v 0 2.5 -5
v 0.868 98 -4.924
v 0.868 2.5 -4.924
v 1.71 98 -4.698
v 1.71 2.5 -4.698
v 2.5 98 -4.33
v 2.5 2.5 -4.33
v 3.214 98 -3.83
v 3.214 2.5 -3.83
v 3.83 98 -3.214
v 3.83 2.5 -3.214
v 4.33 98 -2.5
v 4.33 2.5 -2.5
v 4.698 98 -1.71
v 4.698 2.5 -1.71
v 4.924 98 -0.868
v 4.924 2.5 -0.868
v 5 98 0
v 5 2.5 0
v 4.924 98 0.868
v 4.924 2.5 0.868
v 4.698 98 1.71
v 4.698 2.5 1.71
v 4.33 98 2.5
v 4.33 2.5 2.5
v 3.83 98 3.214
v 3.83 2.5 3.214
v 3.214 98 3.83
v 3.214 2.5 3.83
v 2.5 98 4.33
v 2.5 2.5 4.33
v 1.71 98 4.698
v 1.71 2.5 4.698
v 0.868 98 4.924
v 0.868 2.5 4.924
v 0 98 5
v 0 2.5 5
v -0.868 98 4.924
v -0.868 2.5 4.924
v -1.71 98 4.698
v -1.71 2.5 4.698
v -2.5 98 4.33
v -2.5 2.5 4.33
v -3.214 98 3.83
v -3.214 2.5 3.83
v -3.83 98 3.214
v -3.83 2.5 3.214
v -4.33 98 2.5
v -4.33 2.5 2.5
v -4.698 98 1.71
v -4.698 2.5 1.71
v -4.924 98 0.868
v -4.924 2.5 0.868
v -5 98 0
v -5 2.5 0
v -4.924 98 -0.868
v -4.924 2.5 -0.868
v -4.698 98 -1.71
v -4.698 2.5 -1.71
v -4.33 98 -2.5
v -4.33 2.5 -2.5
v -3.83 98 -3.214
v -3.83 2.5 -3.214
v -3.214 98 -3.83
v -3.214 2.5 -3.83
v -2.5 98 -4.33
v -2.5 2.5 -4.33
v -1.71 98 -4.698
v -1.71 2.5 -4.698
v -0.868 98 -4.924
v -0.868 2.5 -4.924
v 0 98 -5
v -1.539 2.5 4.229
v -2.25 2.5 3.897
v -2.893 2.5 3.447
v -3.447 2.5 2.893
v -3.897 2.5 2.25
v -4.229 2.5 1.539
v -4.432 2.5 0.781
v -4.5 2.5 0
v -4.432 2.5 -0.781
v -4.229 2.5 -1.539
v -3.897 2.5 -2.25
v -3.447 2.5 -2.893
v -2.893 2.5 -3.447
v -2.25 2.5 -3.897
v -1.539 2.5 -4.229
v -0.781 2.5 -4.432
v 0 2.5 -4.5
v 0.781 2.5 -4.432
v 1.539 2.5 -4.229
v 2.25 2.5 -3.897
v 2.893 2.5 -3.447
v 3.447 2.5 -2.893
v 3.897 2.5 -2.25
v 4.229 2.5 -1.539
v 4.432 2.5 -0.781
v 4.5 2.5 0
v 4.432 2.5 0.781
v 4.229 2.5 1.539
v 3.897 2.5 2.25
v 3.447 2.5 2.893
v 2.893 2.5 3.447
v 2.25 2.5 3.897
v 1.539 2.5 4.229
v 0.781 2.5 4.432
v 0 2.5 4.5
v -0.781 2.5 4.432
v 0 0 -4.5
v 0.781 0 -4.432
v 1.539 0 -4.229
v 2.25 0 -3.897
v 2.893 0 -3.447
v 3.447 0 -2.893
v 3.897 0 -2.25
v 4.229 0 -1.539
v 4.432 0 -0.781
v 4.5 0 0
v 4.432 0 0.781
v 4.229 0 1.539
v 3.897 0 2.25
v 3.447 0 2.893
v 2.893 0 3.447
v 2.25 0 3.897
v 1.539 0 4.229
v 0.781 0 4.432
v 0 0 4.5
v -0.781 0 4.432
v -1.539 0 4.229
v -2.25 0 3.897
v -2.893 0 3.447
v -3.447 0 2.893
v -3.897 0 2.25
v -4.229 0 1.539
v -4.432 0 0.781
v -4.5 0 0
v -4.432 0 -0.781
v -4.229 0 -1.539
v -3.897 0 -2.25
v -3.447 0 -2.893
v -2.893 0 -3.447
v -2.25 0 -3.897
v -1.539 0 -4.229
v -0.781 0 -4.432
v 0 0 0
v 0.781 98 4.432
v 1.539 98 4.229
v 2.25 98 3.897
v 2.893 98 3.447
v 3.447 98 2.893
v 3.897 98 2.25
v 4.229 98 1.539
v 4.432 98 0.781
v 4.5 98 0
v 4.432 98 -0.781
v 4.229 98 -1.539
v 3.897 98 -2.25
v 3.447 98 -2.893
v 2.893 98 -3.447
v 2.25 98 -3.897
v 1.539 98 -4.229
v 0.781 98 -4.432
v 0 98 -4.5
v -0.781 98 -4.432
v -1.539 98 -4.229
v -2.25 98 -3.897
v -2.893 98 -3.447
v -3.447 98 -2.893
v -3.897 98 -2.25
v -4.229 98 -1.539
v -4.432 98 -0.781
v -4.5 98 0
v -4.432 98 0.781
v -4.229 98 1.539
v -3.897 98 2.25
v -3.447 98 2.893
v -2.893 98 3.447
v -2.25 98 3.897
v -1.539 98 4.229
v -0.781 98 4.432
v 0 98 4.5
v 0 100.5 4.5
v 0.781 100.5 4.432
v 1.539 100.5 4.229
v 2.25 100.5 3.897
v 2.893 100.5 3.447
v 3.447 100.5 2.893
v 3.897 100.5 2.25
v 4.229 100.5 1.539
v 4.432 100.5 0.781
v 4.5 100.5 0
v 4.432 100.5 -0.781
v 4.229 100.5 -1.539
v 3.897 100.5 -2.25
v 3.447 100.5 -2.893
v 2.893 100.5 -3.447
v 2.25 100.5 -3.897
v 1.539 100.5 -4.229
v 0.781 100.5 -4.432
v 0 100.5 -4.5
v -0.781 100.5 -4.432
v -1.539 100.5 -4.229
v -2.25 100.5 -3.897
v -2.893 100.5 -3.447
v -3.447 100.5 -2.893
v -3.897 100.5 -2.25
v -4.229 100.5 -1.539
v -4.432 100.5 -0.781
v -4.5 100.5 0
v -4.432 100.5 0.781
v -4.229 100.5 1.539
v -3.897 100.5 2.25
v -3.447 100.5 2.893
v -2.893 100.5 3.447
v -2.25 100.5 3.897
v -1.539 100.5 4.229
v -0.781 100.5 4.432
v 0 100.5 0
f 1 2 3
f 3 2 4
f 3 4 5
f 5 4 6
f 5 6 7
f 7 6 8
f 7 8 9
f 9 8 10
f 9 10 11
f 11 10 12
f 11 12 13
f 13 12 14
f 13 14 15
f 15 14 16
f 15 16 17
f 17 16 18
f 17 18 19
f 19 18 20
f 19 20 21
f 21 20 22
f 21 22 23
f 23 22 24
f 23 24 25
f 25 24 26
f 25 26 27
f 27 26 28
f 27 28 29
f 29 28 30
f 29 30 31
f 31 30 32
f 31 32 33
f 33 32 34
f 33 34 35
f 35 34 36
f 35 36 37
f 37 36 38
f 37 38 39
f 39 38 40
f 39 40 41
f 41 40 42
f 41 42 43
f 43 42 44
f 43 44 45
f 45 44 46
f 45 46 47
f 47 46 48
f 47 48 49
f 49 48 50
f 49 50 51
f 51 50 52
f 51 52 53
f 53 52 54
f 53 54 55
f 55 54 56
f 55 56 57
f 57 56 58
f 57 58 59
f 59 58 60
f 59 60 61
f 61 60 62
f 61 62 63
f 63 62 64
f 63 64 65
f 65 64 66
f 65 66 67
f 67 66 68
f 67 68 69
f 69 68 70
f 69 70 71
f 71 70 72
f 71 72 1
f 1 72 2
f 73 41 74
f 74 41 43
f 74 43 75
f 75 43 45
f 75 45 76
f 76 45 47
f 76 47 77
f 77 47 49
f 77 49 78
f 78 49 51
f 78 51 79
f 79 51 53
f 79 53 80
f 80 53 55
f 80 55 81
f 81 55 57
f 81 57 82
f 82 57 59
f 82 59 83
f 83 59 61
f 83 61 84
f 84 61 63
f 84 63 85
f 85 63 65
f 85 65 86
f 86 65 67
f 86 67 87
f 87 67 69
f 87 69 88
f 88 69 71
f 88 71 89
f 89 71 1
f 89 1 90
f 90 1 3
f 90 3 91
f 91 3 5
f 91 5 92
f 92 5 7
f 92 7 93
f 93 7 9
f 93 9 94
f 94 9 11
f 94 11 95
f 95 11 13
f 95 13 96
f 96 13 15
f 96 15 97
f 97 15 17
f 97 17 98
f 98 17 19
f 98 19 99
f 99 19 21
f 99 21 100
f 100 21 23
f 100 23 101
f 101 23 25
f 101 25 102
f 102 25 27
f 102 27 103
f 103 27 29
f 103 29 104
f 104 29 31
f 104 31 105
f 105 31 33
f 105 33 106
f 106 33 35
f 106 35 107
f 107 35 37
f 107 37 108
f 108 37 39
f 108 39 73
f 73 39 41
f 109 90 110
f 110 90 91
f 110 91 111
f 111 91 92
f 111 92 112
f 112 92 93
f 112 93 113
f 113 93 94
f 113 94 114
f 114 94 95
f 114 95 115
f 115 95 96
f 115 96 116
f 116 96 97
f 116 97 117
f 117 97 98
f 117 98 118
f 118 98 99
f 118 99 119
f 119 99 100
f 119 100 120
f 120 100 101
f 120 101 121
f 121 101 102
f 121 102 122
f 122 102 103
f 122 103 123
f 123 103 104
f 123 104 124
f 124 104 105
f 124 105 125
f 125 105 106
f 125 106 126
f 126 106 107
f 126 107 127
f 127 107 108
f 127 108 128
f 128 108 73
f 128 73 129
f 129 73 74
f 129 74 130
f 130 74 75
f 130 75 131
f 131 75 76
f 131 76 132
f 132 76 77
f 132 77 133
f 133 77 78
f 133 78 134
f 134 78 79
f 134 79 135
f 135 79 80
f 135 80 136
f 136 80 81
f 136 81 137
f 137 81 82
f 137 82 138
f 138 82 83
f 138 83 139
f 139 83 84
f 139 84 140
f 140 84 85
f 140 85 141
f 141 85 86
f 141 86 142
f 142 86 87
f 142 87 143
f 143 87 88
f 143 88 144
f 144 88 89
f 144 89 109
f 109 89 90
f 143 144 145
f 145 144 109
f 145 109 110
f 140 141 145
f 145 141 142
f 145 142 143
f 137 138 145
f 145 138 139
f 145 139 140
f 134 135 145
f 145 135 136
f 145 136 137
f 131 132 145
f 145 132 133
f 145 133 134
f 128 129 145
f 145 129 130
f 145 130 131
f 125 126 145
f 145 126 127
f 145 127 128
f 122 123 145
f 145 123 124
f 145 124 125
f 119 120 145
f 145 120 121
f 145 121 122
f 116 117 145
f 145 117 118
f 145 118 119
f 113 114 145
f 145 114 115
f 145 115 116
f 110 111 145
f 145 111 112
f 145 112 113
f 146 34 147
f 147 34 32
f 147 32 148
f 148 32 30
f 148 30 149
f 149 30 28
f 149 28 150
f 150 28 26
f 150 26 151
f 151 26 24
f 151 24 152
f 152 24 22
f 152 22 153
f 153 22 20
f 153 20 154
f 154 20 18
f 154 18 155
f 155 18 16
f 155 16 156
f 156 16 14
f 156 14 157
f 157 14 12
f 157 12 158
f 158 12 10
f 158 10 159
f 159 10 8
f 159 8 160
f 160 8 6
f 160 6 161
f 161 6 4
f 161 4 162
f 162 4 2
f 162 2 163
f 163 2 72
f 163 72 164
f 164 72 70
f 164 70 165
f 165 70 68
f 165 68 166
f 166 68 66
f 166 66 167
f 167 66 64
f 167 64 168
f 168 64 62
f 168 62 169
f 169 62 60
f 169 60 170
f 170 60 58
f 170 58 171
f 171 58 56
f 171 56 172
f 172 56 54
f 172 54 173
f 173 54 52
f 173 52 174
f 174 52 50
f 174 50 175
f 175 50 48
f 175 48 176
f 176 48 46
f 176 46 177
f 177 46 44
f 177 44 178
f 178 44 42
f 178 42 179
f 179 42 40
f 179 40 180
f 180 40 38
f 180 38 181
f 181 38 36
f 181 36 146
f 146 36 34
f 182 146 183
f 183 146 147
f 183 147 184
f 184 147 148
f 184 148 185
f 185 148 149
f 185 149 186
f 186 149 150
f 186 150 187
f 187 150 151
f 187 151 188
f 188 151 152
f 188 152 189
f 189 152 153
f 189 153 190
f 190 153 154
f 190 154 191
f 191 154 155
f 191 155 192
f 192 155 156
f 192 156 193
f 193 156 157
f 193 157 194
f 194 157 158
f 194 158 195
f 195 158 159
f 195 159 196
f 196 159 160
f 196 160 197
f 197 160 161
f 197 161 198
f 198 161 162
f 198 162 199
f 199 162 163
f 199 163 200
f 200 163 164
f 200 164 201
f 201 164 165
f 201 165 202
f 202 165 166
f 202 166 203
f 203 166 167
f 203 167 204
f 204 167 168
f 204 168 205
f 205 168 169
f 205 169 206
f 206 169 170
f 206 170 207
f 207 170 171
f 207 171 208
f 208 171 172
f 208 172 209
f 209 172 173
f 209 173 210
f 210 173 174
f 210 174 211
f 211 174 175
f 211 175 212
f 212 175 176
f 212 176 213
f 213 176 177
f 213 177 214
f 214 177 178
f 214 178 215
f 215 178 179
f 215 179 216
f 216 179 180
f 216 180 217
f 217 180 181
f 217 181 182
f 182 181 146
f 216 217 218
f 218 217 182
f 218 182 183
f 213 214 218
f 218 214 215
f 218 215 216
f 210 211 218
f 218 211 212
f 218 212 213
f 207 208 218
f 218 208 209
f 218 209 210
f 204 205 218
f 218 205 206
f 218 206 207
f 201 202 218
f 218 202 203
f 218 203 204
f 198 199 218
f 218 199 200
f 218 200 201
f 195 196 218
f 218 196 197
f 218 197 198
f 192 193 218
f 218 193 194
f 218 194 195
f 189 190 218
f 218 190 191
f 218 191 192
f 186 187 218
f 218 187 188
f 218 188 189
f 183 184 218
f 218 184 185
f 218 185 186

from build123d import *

# Parameters (mm, degrees)
SKETCH1_R           = 5
BOSS_EXTRUDE1_DEPTH = 100.5
SKETCH24_R          = 5
SKETCH24_R_2        = 4.5
CUT_EXTRUDE3_DEPTH  = 2.5
SKETCH25_R          = 5
SKETCH25_R_2        = 4.5
CUT_EXTRUDE4_DEPTH  = 2.5


with BuildPart() as part:
    # Sketch1 → Boss-Extrude1 (new body)
    with BuildSketch(Plane(origin=(0, 0, 0), x_dir=(1, 0, 0), z_dir=(0, 1, 0))):
        Circle(SKETCH1_R)
    extrude(amount=BOSS_EXTRUDE1_DEPTH)

    # Sketch24 → Cut-Extrude3 (cut)
    with BuildSketch(Plane(origin=(0, 0, 0), x_dir=(-1, 0, 0), z_dir=(0, -1, 0))):
        Circle(SKETCH24_R)
        Circle(SKETCH24_R_2, mode=Mode.SUBTRACT)
    extrude(amount=-CUT_EXTRUDE3_DEPTH, mode=Mode.SUBTRACT)

    # Sketch25 → Cut-Extrude4 (cut)
    with BuildSketch(Plane(origin=(0, 100.5, 0), x_dir=(1, 0, 0), z_dir=(0, 1, 0))):
        Circle(SKETCH25_R)
        Circle(SKETCH25_R_2, mode=Mode.SUBTRACT)
    extrude(amount=-CUT_EXTRUDE4_DEPTH, mode=Mode.SUBTRACT)


solid = part.part
